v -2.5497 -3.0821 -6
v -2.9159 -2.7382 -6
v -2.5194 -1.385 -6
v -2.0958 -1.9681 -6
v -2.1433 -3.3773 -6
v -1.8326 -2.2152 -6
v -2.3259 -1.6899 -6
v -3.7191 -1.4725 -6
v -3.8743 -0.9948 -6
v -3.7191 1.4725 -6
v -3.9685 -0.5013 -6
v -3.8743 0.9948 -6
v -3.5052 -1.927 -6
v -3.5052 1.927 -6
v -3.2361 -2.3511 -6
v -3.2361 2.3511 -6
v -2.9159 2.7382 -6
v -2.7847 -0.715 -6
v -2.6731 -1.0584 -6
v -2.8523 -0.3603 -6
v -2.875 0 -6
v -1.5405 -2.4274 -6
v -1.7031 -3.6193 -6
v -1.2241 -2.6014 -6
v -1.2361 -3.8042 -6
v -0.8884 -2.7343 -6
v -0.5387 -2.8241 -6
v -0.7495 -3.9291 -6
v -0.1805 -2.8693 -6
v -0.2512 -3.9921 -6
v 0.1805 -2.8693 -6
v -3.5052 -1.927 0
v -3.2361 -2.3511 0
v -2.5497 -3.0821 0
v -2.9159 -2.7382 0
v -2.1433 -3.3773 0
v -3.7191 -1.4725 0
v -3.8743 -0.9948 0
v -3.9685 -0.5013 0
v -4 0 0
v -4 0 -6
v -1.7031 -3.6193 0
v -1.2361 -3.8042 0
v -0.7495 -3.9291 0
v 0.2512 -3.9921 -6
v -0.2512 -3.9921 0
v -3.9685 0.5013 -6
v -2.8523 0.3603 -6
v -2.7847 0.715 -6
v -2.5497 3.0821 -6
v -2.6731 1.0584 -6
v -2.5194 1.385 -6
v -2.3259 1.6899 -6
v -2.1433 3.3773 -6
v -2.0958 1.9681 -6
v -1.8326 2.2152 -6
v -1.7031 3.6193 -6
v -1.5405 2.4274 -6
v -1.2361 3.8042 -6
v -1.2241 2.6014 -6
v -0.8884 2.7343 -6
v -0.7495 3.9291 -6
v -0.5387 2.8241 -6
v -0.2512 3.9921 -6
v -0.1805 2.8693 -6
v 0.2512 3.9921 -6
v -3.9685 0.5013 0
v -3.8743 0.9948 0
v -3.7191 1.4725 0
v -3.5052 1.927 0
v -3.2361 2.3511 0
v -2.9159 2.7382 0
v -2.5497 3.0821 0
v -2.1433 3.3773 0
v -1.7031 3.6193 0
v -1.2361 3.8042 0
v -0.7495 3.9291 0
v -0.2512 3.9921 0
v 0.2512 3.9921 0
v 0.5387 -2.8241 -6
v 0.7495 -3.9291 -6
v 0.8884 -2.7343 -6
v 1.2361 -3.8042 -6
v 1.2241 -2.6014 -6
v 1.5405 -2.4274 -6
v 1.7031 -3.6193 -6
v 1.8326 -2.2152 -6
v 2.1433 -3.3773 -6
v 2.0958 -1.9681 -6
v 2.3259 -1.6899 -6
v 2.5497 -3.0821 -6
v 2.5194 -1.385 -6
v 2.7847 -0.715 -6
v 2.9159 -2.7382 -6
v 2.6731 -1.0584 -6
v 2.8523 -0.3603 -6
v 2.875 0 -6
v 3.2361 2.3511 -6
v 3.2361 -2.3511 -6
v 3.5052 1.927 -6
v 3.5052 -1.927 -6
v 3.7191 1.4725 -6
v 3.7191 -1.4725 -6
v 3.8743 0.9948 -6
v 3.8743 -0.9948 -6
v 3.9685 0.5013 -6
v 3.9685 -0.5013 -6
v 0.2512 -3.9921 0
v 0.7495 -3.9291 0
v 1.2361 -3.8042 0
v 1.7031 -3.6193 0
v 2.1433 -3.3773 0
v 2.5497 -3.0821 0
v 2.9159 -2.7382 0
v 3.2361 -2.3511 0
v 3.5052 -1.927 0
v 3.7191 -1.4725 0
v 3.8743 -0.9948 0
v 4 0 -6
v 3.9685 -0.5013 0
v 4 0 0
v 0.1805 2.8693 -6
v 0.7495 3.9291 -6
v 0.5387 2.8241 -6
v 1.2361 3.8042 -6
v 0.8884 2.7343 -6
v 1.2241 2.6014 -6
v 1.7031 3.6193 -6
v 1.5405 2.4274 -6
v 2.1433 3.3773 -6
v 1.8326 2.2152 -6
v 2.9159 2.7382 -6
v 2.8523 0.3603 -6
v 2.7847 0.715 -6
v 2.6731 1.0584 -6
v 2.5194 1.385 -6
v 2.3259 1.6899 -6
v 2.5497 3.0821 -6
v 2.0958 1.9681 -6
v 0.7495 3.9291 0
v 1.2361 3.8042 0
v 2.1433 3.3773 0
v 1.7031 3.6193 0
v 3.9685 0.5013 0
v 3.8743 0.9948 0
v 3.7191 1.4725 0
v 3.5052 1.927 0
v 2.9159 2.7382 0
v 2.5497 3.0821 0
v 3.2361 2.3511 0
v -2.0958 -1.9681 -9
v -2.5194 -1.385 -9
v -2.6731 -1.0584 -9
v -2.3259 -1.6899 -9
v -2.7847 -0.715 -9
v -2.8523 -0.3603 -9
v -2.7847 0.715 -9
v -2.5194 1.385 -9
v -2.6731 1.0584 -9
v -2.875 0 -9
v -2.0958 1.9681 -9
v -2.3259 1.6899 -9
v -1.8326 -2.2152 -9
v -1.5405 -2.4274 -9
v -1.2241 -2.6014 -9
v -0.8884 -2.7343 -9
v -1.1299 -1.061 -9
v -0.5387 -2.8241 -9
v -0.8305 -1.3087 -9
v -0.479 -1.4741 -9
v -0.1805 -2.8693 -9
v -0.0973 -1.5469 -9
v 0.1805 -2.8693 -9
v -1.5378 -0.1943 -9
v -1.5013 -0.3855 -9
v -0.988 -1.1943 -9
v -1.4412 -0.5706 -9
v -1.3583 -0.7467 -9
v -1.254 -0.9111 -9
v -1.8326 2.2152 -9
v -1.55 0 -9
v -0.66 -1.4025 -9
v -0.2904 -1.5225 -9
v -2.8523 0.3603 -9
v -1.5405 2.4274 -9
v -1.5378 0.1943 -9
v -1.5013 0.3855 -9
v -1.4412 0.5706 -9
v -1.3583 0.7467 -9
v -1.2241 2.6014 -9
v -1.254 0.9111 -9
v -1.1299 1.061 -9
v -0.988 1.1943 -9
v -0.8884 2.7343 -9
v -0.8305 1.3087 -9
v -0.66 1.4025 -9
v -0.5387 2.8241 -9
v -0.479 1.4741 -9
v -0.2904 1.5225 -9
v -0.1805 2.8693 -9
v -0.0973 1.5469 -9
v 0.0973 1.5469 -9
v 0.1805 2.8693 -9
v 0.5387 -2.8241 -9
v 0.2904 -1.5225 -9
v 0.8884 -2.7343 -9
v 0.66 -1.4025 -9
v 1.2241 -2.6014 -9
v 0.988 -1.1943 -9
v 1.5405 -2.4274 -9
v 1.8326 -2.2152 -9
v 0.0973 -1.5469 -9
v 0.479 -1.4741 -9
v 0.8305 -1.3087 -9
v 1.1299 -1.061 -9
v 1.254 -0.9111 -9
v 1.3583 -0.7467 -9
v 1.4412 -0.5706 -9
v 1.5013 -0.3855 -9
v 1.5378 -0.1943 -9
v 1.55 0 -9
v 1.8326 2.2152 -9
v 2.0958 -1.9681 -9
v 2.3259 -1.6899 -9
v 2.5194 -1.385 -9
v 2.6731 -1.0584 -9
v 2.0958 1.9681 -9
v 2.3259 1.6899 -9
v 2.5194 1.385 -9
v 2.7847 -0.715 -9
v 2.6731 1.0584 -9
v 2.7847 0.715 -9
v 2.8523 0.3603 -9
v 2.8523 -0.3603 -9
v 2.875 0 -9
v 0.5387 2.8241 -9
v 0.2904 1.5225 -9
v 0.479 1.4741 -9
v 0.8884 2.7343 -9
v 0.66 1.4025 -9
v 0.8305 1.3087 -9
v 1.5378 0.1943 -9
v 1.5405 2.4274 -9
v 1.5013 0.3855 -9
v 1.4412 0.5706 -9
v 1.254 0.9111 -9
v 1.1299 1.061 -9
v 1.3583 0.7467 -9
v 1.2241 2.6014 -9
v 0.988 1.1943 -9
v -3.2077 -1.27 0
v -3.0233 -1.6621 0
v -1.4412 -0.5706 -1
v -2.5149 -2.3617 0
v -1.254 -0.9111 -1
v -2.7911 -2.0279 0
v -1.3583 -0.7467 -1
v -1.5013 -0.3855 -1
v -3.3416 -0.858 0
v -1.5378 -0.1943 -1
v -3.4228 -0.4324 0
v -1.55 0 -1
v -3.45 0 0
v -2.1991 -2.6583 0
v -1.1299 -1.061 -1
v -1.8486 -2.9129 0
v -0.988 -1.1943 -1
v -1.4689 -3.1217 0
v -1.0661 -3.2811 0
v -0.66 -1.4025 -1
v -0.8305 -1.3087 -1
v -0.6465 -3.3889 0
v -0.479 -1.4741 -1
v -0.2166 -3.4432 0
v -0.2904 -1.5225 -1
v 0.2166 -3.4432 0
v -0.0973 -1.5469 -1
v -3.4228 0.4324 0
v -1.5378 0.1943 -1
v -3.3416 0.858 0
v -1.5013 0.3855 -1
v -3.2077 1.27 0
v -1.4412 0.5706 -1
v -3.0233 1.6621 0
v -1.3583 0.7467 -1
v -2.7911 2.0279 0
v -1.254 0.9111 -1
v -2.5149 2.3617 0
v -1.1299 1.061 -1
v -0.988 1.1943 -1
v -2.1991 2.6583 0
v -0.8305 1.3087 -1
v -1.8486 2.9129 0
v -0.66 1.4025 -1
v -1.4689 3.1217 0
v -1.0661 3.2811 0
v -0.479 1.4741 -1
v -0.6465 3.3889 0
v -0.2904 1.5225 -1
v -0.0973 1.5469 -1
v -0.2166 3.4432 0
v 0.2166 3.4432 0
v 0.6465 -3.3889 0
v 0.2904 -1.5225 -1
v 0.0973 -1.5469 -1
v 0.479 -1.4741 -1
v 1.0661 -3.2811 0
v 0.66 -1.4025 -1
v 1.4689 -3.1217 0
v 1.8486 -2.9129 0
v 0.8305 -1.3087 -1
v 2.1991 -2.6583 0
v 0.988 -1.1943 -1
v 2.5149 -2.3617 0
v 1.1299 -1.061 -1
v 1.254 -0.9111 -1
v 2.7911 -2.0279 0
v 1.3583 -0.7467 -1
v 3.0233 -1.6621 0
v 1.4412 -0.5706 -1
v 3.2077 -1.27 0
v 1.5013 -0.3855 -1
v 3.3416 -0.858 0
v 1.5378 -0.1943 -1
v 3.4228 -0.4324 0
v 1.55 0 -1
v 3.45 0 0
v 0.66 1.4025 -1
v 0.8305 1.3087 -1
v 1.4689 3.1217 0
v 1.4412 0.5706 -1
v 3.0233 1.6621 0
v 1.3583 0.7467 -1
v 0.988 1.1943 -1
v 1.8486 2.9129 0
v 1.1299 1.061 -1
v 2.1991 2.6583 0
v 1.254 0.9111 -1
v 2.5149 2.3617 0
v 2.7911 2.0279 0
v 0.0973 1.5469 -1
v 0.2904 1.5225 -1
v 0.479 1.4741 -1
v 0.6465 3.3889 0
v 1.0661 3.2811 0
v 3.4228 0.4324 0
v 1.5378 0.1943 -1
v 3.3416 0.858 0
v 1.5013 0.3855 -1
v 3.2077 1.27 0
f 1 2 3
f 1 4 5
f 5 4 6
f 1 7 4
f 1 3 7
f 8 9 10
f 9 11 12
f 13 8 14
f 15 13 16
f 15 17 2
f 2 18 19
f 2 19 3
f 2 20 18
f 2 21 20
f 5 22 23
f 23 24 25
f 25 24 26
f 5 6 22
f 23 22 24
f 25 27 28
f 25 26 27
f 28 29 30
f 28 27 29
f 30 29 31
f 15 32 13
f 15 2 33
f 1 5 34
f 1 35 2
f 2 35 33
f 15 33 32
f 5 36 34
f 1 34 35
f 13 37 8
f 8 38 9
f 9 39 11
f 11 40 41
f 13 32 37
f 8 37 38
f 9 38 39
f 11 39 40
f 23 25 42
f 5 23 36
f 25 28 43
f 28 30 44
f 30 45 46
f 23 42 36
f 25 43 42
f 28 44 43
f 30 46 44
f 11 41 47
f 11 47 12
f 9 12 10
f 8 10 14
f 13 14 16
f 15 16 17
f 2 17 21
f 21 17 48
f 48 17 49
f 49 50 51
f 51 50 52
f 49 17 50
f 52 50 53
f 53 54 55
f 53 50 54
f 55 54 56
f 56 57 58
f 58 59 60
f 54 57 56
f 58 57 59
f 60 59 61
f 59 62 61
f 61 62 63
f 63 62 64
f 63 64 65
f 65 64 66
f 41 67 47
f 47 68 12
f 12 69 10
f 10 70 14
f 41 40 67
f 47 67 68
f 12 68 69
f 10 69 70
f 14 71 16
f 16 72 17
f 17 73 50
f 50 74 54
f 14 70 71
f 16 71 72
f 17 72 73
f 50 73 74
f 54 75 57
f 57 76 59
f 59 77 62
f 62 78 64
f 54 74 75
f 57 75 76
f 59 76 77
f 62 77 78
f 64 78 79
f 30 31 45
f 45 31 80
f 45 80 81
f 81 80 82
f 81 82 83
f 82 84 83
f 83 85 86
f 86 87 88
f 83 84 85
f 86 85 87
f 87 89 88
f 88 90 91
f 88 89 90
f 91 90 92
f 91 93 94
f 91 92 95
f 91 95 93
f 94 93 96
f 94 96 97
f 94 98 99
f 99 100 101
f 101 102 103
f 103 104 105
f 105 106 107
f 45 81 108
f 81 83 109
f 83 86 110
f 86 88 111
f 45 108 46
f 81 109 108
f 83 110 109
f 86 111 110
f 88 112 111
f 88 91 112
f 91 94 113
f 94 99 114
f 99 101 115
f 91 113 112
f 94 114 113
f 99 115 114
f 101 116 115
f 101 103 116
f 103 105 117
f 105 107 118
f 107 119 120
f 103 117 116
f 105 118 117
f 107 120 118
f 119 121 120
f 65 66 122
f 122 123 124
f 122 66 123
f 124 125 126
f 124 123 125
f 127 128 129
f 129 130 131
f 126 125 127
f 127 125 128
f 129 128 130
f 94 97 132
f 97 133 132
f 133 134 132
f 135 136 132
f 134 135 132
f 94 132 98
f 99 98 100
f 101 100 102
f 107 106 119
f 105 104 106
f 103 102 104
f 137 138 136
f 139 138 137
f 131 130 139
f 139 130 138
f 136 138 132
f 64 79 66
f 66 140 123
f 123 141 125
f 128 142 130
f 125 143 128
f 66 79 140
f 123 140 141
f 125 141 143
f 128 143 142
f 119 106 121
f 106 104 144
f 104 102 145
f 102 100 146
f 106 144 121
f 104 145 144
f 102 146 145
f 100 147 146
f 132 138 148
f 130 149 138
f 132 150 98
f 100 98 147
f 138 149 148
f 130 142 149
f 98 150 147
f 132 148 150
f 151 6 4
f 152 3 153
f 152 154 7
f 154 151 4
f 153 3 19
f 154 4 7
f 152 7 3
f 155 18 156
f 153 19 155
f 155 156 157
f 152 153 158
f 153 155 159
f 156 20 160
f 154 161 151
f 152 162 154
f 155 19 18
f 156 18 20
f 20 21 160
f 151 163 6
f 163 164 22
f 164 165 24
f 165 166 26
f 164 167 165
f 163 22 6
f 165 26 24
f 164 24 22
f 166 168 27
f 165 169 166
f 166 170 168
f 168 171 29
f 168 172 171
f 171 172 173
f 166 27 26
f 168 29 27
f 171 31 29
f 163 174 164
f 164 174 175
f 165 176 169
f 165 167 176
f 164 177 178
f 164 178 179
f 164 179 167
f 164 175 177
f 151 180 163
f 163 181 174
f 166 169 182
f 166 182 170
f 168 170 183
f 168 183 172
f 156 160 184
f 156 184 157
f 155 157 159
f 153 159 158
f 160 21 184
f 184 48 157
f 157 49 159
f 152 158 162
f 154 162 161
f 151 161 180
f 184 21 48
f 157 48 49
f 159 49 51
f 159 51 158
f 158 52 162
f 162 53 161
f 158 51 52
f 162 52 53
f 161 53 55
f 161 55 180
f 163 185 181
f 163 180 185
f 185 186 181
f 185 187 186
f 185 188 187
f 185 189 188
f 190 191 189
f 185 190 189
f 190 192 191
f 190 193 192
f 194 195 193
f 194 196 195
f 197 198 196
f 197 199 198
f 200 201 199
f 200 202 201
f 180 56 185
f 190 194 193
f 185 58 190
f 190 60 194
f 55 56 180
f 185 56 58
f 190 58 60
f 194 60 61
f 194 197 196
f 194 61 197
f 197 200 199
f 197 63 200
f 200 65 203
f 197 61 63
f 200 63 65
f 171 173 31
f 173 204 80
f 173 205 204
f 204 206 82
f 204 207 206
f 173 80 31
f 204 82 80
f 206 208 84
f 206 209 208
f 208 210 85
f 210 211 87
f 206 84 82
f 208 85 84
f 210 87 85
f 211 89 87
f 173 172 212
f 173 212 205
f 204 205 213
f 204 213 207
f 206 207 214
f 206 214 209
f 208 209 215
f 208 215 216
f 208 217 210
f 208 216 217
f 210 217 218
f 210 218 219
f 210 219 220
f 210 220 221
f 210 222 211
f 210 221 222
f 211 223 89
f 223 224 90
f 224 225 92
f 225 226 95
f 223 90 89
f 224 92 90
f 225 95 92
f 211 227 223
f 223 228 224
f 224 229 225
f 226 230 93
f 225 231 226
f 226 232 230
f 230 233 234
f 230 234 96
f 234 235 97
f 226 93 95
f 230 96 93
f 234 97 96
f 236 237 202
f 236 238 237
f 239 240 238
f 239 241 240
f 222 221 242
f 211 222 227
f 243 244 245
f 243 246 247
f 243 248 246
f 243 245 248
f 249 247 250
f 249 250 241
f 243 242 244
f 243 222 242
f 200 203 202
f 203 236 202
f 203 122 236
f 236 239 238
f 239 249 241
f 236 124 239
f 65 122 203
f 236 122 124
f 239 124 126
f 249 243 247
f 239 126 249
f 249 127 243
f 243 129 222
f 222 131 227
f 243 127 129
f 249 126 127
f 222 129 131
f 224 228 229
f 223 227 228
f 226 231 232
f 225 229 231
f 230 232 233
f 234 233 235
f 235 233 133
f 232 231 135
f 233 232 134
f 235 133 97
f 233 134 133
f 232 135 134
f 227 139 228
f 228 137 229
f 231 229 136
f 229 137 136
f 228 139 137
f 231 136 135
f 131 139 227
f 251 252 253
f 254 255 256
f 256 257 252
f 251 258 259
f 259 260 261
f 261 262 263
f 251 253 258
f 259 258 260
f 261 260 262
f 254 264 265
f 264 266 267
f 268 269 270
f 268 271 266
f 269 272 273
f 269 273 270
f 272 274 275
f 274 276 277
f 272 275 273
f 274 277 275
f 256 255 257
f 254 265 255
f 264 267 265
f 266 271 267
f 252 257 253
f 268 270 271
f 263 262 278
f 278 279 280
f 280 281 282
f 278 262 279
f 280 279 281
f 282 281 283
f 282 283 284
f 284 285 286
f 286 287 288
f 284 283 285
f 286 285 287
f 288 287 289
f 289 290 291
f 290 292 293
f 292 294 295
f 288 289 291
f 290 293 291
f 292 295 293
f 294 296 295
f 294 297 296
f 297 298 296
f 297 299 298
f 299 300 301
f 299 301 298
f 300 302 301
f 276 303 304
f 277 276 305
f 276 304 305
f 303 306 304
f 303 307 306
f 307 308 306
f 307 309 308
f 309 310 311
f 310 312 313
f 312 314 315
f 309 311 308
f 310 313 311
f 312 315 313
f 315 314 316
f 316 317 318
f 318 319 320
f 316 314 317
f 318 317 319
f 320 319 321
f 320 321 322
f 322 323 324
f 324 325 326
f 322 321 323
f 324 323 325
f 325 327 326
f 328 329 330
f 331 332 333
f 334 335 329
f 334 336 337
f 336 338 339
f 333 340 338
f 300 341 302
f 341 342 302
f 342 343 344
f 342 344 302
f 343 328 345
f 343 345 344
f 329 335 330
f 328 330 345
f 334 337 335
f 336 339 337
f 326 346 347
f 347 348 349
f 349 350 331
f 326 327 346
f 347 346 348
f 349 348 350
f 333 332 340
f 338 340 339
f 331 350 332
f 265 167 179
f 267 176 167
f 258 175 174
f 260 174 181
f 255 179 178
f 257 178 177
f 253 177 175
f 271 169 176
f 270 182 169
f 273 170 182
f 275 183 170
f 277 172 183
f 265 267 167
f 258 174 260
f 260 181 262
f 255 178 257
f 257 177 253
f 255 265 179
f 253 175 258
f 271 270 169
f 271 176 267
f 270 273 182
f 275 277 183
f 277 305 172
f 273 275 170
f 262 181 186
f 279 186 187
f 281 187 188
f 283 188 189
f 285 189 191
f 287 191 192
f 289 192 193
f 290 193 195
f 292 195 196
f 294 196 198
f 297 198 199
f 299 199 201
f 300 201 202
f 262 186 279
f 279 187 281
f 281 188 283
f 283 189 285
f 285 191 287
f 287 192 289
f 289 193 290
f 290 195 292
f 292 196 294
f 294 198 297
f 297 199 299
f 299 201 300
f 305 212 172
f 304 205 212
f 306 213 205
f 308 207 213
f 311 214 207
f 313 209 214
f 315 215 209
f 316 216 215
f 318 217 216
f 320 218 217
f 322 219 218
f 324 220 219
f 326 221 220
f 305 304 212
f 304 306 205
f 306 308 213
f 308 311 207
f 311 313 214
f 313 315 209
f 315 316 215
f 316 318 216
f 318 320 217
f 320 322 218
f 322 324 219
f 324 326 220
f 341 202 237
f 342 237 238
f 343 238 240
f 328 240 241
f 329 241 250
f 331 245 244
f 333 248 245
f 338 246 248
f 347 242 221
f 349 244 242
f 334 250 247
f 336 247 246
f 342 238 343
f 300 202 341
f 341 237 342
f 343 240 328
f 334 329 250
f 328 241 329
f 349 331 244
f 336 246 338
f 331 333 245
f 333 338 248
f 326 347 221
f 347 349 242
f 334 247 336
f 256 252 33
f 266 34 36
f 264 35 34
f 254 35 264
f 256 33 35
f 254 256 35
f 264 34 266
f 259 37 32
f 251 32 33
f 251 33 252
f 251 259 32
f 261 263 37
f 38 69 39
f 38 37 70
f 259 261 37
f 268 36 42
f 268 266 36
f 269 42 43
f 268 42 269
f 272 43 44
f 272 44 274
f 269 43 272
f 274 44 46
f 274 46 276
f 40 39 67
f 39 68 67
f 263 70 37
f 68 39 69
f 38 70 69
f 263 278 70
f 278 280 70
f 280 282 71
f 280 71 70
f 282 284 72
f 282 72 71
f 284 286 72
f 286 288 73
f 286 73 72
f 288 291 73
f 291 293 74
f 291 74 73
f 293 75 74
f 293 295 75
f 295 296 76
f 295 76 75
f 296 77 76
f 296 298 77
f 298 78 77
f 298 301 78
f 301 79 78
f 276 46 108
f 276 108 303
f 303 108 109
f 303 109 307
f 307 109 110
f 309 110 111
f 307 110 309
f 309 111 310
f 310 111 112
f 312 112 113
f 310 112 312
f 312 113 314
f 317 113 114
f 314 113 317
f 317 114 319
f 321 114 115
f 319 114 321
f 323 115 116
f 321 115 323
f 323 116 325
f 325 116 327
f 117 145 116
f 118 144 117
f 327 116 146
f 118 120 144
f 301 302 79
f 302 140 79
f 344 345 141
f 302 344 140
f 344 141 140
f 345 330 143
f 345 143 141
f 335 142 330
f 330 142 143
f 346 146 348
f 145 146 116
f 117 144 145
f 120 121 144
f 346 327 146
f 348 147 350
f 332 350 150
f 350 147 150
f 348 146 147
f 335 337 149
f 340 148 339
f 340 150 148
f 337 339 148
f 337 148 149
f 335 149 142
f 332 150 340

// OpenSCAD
$fn = 50;

difference() {
	union() {
		translate(v = [0, 0, -6.0]) {
			cylinder(h = 9, r = 4.0);
		}
		#translate(v = [0, 0, -9.0]) {
			cylinder(h = 9, r = 2.875);
		}
	}
	union() {
		translate(v = [0, 0, 0]) {
			rotate(a = [0, 0, 0]) {
				difference() {
					union() {
						translate(v = [0, 0, -9.0]) {
							cylinder(h = 9, r = 1.25);
						}
						translate(v = [0, 0, -1.0]) {
							cylinder(h = 1.0, r1 = 1.55, r2 = 3.45);
						}
						translate(v = [0, 0, -9.0]) {
							cylinder(h = 9, r = 1.55);
						}
						translate(v = [0, 0, -9.0]) {
							cylinder(h = 9, r = 1.25);
						}
					}
					union();
				}
			}
		}
		#cylinder(h = 3, r = 5.0);
	}
}
